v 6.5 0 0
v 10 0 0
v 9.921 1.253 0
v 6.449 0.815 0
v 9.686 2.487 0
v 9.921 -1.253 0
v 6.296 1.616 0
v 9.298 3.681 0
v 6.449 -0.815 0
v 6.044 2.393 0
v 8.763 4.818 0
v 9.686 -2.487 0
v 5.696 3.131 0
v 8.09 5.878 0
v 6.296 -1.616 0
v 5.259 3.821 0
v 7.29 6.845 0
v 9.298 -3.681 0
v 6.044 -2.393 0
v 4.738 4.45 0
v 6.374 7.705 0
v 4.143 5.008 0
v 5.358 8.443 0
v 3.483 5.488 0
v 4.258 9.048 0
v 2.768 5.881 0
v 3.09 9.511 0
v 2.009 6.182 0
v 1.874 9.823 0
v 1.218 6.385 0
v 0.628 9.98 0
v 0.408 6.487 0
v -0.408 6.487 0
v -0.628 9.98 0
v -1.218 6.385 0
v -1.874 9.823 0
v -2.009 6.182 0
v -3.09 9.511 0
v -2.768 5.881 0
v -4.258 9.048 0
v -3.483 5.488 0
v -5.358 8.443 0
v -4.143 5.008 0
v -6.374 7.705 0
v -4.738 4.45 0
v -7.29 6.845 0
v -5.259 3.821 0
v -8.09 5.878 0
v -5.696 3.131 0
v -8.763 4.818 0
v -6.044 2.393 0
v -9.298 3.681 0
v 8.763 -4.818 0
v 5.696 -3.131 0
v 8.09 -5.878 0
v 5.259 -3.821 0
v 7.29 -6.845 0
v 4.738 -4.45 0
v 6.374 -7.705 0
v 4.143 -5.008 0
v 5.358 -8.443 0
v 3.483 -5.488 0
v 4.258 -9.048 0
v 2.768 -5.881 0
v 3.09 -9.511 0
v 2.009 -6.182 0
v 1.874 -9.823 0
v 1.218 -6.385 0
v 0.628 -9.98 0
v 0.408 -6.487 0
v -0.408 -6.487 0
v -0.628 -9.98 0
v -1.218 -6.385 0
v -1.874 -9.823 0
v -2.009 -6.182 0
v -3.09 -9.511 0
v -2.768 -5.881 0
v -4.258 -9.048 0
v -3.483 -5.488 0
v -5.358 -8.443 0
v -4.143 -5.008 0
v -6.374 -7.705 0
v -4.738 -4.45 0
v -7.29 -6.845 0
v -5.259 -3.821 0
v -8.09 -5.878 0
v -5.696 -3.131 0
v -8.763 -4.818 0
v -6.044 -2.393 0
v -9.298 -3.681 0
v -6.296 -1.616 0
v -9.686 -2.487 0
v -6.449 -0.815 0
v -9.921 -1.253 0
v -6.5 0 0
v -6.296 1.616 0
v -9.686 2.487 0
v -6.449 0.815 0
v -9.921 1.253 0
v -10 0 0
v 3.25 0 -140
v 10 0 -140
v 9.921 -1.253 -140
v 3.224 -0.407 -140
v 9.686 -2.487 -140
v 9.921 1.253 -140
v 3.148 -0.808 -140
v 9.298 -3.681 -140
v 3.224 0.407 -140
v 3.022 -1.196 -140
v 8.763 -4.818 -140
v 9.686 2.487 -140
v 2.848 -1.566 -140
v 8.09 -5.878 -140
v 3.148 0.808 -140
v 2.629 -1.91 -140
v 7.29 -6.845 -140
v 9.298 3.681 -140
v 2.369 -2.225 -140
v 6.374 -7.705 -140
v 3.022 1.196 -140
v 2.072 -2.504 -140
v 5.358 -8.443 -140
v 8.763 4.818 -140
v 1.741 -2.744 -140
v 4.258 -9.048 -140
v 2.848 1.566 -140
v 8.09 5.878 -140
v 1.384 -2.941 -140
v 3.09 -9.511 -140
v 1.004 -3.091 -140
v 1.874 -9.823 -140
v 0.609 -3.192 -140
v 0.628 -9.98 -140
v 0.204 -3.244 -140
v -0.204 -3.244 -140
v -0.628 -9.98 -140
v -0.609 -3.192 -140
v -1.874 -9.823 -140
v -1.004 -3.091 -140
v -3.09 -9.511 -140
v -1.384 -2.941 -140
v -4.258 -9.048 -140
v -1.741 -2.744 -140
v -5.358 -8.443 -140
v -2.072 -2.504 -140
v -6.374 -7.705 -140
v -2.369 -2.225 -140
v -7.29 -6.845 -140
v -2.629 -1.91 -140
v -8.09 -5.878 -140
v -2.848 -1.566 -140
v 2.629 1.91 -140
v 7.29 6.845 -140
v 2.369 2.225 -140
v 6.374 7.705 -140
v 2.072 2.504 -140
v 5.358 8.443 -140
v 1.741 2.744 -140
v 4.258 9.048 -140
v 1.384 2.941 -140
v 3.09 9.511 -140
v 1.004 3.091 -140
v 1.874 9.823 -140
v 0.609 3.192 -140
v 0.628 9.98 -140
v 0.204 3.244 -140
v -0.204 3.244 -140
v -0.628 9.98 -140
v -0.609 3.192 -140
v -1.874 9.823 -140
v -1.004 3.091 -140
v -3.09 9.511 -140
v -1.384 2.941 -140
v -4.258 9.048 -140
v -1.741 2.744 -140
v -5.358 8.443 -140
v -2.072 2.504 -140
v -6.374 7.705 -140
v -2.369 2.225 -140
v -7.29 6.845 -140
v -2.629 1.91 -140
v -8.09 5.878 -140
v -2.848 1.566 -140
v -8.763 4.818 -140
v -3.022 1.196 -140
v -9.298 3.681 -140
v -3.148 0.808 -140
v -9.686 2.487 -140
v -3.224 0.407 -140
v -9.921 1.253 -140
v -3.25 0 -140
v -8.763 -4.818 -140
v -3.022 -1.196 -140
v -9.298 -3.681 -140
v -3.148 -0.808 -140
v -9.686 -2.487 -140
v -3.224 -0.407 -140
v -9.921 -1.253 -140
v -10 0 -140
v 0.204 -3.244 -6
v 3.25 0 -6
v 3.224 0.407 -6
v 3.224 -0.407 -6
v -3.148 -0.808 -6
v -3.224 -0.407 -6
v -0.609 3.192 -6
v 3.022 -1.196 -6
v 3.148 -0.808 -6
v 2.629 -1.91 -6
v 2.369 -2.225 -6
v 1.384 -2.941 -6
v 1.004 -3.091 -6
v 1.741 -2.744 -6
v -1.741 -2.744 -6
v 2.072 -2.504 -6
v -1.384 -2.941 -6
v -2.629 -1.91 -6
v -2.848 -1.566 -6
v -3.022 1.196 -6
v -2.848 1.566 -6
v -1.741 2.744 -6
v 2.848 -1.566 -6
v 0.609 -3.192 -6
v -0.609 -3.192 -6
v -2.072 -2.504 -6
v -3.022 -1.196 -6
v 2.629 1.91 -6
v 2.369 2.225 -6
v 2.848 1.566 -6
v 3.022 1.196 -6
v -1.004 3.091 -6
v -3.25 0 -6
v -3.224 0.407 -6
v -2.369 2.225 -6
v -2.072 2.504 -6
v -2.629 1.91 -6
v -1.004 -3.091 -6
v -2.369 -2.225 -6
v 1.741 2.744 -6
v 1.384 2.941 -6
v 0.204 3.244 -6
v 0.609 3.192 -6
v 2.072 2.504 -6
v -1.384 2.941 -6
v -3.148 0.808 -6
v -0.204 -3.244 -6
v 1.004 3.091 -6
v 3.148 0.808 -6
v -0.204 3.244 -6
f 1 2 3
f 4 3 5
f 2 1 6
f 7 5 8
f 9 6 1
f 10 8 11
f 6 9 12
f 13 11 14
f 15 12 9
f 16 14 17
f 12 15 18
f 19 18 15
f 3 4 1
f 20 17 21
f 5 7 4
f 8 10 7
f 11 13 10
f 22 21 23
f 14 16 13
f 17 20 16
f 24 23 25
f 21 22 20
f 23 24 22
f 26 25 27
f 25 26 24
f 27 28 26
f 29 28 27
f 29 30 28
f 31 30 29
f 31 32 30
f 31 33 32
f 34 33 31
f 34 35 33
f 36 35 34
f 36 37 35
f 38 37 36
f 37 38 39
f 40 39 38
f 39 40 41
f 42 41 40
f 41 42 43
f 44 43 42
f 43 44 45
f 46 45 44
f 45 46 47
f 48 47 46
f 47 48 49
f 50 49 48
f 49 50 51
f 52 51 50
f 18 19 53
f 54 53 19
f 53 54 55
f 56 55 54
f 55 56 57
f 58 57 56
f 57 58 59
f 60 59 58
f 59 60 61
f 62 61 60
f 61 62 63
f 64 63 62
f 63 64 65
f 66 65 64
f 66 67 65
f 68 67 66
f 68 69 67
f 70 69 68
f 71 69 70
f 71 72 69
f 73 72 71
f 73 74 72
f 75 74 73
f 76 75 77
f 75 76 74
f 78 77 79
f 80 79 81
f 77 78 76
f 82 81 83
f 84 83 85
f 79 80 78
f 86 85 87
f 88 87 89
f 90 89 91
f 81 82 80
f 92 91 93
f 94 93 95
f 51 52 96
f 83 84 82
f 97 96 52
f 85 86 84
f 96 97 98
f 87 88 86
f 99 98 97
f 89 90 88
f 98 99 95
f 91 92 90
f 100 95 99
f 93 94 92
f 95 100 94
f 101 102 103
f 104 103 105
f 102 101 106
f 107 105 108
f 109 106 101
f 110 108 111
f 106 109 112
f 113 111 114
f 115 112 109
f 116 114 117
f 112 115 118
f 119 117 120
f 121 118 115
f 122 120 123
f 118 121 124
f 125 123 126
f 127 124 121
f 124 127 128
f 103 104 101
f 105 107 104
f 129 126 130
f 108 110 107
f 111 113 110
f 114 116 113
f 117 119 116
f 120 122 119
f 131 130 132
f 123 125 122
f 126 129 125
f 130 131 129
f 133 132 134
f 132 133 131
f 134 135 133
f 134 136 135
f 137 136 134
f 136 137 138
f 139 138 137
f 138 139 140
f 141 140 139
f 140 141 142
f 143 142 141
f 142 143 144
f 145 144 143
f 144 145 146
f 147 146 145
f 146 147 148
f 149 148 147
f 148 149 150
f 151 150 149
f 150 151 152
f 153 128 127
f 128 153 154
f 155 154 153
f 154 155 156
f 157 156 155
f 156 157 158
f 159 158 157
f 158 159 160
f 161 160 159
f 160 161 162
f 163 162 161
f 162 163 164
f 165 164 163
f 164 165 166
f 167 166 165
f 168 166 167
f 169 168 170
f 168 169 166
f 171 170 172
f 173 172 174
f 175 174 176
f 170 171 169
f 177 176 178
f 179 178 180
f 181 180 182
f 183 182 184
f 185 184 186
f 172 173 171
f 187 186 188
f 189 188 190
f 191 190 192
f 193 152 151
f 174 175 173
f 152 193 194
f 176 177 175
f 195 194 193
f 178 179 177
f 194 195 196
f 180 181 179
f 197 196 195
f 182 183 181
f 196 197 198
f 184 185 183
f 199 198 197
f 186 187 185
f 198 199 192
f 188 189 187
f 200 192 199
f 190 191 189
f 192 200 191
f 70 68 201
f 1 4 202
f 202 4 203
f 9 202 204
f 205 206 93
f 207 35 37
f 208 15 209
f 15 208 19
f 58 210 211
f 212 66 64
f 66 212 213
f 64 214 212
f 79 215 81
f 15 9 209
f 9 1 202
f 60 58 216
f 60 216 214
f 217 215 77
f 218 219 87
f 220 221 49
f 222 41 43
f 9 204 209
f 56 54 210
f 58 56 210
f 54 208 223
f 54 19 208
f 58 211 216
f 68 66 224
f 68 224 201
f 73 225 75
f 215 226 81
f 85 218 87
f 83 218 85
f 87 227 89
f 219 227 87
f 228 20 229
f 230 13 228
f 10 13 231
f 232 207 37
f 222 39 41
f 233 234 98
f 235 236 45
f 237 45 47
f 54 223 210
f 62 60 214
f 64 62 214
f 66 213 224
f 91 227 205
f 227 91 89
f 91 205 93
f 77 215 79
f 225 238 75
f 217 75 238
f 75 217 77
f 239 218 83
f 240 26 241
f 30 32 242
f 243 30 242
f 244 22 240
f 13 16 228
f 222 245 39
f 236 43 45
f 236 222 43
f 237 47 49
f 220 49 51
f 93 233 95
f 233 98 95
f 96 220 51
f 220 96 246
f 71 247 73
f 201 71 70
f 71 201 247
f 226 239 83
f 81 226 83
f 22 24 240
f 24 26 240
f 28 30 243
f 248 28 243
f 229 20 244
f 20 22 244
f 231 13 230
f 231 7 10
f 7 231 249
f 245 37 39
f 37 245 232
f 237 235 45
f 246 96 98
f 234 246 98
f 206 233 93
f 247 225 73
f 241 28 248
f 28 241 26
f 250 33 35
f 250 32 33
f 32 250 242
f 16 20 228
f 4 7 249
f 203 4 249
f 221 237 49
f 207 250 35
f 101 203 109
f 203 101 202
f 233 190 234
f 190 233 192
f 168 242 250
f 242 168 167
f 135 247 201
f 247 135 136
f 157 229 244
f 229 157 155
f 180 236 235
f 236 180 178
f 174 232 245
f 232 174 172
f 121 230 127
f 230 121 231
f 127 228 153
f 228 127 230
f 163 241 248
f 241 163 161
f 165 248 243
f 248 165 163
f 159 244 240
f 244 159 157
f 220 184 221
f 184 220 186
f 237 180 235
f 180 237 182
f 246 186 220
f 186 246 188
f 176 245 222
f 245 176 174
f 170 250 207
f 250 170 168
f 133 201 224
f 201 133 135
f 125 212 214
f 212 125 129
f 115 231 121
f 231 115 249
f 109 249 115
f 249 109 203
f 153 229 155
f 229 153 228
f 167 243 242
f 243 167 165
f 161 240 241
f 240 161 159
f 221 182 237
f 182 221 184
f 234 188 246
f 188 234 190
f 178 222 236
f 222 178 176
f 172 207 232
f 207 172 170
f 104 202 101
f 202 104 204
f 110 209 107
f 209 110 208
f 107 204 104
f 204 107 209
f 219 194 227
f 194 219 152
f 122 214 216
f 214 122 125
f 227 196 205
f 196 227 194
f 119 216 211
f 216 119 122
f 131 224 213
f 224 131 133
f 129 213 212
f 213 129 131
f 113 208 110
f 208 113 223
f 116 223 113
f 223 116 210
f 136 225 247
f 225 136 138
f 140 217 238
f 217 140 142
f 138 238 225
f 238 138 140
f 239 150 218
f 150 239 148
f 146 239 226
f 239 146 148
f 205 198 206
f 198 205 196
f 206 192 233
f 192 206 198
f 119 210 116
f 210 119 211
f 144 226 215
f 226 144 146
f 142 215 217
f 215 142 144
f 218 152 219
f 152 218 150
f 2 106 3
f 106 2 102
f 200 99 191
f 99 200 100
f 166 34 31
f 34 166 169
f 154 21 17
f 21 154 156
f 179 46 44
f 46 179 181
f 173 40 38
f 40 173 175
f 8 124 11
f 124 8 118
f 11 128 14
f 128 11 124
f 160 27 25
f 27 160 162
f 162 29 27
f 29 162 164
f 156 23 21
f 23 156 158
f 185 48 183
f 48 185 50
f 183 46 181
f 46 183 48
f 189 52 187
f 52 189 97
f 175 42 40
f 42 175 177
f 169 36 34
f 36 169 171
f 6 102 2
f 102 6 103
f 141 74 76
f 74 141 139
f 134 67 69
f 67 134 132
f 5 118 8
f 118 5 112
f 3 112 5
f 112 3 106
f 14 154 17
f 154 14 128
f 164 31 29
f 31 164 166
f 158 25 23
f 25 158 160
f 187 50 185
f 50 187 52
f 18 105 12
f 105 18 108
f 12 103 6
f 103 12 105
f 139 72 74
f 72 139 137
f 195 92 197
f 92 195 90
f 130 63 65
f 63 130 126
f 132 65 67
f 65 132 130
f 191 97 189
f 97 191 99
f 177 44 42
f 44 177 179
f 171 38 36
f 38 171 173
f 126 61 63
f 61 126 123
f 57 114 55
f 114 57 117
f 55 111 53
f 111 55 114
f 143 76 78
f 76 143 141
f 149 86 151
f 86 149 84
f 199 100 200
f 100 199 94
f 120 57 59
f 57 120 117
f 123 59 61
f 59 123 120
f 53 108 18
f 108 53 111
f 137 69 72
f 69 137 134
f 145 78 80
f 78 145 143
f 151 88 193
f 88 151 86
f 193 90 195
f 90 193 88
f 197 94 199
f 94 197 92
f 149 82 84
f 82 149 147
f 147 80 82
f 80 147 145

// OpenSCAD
$fn = 50;


difference() {
	union() {
		translate(v = [0, 0, -140.0000000000]) {
			cylinder(h = 140, r = 10.0000000000);
		}
		cylinder(h = 0, r = 13.0000000000);
	}
	union() {
		translate(v = [0, 0, 0]) {
			rotate(a = [0, 0, 0]) {
				difference() {
					union() {
						#translate(v = [0, 0, -140.0000000000]) {
							cylinder(h = 140, r = 2.2500000000);
						}
						#translate(v = [0, 0, -6]) {
							cylinder(h = 6, r = 10.0000000000, r1 = 3.2500000000, r2 = 6.5000000000);
						}
						#translate(v = [0, 0, -140.0000000000]) {
							cylinder(h = 140, r = 3.2500000000);
						}
						#translate(v = [0, 0, -140.0000000000]) {
							cylinder(h = 140, r = 2.2500000000);
						}
					}
					union();
				}
			}
		}
	}
}
